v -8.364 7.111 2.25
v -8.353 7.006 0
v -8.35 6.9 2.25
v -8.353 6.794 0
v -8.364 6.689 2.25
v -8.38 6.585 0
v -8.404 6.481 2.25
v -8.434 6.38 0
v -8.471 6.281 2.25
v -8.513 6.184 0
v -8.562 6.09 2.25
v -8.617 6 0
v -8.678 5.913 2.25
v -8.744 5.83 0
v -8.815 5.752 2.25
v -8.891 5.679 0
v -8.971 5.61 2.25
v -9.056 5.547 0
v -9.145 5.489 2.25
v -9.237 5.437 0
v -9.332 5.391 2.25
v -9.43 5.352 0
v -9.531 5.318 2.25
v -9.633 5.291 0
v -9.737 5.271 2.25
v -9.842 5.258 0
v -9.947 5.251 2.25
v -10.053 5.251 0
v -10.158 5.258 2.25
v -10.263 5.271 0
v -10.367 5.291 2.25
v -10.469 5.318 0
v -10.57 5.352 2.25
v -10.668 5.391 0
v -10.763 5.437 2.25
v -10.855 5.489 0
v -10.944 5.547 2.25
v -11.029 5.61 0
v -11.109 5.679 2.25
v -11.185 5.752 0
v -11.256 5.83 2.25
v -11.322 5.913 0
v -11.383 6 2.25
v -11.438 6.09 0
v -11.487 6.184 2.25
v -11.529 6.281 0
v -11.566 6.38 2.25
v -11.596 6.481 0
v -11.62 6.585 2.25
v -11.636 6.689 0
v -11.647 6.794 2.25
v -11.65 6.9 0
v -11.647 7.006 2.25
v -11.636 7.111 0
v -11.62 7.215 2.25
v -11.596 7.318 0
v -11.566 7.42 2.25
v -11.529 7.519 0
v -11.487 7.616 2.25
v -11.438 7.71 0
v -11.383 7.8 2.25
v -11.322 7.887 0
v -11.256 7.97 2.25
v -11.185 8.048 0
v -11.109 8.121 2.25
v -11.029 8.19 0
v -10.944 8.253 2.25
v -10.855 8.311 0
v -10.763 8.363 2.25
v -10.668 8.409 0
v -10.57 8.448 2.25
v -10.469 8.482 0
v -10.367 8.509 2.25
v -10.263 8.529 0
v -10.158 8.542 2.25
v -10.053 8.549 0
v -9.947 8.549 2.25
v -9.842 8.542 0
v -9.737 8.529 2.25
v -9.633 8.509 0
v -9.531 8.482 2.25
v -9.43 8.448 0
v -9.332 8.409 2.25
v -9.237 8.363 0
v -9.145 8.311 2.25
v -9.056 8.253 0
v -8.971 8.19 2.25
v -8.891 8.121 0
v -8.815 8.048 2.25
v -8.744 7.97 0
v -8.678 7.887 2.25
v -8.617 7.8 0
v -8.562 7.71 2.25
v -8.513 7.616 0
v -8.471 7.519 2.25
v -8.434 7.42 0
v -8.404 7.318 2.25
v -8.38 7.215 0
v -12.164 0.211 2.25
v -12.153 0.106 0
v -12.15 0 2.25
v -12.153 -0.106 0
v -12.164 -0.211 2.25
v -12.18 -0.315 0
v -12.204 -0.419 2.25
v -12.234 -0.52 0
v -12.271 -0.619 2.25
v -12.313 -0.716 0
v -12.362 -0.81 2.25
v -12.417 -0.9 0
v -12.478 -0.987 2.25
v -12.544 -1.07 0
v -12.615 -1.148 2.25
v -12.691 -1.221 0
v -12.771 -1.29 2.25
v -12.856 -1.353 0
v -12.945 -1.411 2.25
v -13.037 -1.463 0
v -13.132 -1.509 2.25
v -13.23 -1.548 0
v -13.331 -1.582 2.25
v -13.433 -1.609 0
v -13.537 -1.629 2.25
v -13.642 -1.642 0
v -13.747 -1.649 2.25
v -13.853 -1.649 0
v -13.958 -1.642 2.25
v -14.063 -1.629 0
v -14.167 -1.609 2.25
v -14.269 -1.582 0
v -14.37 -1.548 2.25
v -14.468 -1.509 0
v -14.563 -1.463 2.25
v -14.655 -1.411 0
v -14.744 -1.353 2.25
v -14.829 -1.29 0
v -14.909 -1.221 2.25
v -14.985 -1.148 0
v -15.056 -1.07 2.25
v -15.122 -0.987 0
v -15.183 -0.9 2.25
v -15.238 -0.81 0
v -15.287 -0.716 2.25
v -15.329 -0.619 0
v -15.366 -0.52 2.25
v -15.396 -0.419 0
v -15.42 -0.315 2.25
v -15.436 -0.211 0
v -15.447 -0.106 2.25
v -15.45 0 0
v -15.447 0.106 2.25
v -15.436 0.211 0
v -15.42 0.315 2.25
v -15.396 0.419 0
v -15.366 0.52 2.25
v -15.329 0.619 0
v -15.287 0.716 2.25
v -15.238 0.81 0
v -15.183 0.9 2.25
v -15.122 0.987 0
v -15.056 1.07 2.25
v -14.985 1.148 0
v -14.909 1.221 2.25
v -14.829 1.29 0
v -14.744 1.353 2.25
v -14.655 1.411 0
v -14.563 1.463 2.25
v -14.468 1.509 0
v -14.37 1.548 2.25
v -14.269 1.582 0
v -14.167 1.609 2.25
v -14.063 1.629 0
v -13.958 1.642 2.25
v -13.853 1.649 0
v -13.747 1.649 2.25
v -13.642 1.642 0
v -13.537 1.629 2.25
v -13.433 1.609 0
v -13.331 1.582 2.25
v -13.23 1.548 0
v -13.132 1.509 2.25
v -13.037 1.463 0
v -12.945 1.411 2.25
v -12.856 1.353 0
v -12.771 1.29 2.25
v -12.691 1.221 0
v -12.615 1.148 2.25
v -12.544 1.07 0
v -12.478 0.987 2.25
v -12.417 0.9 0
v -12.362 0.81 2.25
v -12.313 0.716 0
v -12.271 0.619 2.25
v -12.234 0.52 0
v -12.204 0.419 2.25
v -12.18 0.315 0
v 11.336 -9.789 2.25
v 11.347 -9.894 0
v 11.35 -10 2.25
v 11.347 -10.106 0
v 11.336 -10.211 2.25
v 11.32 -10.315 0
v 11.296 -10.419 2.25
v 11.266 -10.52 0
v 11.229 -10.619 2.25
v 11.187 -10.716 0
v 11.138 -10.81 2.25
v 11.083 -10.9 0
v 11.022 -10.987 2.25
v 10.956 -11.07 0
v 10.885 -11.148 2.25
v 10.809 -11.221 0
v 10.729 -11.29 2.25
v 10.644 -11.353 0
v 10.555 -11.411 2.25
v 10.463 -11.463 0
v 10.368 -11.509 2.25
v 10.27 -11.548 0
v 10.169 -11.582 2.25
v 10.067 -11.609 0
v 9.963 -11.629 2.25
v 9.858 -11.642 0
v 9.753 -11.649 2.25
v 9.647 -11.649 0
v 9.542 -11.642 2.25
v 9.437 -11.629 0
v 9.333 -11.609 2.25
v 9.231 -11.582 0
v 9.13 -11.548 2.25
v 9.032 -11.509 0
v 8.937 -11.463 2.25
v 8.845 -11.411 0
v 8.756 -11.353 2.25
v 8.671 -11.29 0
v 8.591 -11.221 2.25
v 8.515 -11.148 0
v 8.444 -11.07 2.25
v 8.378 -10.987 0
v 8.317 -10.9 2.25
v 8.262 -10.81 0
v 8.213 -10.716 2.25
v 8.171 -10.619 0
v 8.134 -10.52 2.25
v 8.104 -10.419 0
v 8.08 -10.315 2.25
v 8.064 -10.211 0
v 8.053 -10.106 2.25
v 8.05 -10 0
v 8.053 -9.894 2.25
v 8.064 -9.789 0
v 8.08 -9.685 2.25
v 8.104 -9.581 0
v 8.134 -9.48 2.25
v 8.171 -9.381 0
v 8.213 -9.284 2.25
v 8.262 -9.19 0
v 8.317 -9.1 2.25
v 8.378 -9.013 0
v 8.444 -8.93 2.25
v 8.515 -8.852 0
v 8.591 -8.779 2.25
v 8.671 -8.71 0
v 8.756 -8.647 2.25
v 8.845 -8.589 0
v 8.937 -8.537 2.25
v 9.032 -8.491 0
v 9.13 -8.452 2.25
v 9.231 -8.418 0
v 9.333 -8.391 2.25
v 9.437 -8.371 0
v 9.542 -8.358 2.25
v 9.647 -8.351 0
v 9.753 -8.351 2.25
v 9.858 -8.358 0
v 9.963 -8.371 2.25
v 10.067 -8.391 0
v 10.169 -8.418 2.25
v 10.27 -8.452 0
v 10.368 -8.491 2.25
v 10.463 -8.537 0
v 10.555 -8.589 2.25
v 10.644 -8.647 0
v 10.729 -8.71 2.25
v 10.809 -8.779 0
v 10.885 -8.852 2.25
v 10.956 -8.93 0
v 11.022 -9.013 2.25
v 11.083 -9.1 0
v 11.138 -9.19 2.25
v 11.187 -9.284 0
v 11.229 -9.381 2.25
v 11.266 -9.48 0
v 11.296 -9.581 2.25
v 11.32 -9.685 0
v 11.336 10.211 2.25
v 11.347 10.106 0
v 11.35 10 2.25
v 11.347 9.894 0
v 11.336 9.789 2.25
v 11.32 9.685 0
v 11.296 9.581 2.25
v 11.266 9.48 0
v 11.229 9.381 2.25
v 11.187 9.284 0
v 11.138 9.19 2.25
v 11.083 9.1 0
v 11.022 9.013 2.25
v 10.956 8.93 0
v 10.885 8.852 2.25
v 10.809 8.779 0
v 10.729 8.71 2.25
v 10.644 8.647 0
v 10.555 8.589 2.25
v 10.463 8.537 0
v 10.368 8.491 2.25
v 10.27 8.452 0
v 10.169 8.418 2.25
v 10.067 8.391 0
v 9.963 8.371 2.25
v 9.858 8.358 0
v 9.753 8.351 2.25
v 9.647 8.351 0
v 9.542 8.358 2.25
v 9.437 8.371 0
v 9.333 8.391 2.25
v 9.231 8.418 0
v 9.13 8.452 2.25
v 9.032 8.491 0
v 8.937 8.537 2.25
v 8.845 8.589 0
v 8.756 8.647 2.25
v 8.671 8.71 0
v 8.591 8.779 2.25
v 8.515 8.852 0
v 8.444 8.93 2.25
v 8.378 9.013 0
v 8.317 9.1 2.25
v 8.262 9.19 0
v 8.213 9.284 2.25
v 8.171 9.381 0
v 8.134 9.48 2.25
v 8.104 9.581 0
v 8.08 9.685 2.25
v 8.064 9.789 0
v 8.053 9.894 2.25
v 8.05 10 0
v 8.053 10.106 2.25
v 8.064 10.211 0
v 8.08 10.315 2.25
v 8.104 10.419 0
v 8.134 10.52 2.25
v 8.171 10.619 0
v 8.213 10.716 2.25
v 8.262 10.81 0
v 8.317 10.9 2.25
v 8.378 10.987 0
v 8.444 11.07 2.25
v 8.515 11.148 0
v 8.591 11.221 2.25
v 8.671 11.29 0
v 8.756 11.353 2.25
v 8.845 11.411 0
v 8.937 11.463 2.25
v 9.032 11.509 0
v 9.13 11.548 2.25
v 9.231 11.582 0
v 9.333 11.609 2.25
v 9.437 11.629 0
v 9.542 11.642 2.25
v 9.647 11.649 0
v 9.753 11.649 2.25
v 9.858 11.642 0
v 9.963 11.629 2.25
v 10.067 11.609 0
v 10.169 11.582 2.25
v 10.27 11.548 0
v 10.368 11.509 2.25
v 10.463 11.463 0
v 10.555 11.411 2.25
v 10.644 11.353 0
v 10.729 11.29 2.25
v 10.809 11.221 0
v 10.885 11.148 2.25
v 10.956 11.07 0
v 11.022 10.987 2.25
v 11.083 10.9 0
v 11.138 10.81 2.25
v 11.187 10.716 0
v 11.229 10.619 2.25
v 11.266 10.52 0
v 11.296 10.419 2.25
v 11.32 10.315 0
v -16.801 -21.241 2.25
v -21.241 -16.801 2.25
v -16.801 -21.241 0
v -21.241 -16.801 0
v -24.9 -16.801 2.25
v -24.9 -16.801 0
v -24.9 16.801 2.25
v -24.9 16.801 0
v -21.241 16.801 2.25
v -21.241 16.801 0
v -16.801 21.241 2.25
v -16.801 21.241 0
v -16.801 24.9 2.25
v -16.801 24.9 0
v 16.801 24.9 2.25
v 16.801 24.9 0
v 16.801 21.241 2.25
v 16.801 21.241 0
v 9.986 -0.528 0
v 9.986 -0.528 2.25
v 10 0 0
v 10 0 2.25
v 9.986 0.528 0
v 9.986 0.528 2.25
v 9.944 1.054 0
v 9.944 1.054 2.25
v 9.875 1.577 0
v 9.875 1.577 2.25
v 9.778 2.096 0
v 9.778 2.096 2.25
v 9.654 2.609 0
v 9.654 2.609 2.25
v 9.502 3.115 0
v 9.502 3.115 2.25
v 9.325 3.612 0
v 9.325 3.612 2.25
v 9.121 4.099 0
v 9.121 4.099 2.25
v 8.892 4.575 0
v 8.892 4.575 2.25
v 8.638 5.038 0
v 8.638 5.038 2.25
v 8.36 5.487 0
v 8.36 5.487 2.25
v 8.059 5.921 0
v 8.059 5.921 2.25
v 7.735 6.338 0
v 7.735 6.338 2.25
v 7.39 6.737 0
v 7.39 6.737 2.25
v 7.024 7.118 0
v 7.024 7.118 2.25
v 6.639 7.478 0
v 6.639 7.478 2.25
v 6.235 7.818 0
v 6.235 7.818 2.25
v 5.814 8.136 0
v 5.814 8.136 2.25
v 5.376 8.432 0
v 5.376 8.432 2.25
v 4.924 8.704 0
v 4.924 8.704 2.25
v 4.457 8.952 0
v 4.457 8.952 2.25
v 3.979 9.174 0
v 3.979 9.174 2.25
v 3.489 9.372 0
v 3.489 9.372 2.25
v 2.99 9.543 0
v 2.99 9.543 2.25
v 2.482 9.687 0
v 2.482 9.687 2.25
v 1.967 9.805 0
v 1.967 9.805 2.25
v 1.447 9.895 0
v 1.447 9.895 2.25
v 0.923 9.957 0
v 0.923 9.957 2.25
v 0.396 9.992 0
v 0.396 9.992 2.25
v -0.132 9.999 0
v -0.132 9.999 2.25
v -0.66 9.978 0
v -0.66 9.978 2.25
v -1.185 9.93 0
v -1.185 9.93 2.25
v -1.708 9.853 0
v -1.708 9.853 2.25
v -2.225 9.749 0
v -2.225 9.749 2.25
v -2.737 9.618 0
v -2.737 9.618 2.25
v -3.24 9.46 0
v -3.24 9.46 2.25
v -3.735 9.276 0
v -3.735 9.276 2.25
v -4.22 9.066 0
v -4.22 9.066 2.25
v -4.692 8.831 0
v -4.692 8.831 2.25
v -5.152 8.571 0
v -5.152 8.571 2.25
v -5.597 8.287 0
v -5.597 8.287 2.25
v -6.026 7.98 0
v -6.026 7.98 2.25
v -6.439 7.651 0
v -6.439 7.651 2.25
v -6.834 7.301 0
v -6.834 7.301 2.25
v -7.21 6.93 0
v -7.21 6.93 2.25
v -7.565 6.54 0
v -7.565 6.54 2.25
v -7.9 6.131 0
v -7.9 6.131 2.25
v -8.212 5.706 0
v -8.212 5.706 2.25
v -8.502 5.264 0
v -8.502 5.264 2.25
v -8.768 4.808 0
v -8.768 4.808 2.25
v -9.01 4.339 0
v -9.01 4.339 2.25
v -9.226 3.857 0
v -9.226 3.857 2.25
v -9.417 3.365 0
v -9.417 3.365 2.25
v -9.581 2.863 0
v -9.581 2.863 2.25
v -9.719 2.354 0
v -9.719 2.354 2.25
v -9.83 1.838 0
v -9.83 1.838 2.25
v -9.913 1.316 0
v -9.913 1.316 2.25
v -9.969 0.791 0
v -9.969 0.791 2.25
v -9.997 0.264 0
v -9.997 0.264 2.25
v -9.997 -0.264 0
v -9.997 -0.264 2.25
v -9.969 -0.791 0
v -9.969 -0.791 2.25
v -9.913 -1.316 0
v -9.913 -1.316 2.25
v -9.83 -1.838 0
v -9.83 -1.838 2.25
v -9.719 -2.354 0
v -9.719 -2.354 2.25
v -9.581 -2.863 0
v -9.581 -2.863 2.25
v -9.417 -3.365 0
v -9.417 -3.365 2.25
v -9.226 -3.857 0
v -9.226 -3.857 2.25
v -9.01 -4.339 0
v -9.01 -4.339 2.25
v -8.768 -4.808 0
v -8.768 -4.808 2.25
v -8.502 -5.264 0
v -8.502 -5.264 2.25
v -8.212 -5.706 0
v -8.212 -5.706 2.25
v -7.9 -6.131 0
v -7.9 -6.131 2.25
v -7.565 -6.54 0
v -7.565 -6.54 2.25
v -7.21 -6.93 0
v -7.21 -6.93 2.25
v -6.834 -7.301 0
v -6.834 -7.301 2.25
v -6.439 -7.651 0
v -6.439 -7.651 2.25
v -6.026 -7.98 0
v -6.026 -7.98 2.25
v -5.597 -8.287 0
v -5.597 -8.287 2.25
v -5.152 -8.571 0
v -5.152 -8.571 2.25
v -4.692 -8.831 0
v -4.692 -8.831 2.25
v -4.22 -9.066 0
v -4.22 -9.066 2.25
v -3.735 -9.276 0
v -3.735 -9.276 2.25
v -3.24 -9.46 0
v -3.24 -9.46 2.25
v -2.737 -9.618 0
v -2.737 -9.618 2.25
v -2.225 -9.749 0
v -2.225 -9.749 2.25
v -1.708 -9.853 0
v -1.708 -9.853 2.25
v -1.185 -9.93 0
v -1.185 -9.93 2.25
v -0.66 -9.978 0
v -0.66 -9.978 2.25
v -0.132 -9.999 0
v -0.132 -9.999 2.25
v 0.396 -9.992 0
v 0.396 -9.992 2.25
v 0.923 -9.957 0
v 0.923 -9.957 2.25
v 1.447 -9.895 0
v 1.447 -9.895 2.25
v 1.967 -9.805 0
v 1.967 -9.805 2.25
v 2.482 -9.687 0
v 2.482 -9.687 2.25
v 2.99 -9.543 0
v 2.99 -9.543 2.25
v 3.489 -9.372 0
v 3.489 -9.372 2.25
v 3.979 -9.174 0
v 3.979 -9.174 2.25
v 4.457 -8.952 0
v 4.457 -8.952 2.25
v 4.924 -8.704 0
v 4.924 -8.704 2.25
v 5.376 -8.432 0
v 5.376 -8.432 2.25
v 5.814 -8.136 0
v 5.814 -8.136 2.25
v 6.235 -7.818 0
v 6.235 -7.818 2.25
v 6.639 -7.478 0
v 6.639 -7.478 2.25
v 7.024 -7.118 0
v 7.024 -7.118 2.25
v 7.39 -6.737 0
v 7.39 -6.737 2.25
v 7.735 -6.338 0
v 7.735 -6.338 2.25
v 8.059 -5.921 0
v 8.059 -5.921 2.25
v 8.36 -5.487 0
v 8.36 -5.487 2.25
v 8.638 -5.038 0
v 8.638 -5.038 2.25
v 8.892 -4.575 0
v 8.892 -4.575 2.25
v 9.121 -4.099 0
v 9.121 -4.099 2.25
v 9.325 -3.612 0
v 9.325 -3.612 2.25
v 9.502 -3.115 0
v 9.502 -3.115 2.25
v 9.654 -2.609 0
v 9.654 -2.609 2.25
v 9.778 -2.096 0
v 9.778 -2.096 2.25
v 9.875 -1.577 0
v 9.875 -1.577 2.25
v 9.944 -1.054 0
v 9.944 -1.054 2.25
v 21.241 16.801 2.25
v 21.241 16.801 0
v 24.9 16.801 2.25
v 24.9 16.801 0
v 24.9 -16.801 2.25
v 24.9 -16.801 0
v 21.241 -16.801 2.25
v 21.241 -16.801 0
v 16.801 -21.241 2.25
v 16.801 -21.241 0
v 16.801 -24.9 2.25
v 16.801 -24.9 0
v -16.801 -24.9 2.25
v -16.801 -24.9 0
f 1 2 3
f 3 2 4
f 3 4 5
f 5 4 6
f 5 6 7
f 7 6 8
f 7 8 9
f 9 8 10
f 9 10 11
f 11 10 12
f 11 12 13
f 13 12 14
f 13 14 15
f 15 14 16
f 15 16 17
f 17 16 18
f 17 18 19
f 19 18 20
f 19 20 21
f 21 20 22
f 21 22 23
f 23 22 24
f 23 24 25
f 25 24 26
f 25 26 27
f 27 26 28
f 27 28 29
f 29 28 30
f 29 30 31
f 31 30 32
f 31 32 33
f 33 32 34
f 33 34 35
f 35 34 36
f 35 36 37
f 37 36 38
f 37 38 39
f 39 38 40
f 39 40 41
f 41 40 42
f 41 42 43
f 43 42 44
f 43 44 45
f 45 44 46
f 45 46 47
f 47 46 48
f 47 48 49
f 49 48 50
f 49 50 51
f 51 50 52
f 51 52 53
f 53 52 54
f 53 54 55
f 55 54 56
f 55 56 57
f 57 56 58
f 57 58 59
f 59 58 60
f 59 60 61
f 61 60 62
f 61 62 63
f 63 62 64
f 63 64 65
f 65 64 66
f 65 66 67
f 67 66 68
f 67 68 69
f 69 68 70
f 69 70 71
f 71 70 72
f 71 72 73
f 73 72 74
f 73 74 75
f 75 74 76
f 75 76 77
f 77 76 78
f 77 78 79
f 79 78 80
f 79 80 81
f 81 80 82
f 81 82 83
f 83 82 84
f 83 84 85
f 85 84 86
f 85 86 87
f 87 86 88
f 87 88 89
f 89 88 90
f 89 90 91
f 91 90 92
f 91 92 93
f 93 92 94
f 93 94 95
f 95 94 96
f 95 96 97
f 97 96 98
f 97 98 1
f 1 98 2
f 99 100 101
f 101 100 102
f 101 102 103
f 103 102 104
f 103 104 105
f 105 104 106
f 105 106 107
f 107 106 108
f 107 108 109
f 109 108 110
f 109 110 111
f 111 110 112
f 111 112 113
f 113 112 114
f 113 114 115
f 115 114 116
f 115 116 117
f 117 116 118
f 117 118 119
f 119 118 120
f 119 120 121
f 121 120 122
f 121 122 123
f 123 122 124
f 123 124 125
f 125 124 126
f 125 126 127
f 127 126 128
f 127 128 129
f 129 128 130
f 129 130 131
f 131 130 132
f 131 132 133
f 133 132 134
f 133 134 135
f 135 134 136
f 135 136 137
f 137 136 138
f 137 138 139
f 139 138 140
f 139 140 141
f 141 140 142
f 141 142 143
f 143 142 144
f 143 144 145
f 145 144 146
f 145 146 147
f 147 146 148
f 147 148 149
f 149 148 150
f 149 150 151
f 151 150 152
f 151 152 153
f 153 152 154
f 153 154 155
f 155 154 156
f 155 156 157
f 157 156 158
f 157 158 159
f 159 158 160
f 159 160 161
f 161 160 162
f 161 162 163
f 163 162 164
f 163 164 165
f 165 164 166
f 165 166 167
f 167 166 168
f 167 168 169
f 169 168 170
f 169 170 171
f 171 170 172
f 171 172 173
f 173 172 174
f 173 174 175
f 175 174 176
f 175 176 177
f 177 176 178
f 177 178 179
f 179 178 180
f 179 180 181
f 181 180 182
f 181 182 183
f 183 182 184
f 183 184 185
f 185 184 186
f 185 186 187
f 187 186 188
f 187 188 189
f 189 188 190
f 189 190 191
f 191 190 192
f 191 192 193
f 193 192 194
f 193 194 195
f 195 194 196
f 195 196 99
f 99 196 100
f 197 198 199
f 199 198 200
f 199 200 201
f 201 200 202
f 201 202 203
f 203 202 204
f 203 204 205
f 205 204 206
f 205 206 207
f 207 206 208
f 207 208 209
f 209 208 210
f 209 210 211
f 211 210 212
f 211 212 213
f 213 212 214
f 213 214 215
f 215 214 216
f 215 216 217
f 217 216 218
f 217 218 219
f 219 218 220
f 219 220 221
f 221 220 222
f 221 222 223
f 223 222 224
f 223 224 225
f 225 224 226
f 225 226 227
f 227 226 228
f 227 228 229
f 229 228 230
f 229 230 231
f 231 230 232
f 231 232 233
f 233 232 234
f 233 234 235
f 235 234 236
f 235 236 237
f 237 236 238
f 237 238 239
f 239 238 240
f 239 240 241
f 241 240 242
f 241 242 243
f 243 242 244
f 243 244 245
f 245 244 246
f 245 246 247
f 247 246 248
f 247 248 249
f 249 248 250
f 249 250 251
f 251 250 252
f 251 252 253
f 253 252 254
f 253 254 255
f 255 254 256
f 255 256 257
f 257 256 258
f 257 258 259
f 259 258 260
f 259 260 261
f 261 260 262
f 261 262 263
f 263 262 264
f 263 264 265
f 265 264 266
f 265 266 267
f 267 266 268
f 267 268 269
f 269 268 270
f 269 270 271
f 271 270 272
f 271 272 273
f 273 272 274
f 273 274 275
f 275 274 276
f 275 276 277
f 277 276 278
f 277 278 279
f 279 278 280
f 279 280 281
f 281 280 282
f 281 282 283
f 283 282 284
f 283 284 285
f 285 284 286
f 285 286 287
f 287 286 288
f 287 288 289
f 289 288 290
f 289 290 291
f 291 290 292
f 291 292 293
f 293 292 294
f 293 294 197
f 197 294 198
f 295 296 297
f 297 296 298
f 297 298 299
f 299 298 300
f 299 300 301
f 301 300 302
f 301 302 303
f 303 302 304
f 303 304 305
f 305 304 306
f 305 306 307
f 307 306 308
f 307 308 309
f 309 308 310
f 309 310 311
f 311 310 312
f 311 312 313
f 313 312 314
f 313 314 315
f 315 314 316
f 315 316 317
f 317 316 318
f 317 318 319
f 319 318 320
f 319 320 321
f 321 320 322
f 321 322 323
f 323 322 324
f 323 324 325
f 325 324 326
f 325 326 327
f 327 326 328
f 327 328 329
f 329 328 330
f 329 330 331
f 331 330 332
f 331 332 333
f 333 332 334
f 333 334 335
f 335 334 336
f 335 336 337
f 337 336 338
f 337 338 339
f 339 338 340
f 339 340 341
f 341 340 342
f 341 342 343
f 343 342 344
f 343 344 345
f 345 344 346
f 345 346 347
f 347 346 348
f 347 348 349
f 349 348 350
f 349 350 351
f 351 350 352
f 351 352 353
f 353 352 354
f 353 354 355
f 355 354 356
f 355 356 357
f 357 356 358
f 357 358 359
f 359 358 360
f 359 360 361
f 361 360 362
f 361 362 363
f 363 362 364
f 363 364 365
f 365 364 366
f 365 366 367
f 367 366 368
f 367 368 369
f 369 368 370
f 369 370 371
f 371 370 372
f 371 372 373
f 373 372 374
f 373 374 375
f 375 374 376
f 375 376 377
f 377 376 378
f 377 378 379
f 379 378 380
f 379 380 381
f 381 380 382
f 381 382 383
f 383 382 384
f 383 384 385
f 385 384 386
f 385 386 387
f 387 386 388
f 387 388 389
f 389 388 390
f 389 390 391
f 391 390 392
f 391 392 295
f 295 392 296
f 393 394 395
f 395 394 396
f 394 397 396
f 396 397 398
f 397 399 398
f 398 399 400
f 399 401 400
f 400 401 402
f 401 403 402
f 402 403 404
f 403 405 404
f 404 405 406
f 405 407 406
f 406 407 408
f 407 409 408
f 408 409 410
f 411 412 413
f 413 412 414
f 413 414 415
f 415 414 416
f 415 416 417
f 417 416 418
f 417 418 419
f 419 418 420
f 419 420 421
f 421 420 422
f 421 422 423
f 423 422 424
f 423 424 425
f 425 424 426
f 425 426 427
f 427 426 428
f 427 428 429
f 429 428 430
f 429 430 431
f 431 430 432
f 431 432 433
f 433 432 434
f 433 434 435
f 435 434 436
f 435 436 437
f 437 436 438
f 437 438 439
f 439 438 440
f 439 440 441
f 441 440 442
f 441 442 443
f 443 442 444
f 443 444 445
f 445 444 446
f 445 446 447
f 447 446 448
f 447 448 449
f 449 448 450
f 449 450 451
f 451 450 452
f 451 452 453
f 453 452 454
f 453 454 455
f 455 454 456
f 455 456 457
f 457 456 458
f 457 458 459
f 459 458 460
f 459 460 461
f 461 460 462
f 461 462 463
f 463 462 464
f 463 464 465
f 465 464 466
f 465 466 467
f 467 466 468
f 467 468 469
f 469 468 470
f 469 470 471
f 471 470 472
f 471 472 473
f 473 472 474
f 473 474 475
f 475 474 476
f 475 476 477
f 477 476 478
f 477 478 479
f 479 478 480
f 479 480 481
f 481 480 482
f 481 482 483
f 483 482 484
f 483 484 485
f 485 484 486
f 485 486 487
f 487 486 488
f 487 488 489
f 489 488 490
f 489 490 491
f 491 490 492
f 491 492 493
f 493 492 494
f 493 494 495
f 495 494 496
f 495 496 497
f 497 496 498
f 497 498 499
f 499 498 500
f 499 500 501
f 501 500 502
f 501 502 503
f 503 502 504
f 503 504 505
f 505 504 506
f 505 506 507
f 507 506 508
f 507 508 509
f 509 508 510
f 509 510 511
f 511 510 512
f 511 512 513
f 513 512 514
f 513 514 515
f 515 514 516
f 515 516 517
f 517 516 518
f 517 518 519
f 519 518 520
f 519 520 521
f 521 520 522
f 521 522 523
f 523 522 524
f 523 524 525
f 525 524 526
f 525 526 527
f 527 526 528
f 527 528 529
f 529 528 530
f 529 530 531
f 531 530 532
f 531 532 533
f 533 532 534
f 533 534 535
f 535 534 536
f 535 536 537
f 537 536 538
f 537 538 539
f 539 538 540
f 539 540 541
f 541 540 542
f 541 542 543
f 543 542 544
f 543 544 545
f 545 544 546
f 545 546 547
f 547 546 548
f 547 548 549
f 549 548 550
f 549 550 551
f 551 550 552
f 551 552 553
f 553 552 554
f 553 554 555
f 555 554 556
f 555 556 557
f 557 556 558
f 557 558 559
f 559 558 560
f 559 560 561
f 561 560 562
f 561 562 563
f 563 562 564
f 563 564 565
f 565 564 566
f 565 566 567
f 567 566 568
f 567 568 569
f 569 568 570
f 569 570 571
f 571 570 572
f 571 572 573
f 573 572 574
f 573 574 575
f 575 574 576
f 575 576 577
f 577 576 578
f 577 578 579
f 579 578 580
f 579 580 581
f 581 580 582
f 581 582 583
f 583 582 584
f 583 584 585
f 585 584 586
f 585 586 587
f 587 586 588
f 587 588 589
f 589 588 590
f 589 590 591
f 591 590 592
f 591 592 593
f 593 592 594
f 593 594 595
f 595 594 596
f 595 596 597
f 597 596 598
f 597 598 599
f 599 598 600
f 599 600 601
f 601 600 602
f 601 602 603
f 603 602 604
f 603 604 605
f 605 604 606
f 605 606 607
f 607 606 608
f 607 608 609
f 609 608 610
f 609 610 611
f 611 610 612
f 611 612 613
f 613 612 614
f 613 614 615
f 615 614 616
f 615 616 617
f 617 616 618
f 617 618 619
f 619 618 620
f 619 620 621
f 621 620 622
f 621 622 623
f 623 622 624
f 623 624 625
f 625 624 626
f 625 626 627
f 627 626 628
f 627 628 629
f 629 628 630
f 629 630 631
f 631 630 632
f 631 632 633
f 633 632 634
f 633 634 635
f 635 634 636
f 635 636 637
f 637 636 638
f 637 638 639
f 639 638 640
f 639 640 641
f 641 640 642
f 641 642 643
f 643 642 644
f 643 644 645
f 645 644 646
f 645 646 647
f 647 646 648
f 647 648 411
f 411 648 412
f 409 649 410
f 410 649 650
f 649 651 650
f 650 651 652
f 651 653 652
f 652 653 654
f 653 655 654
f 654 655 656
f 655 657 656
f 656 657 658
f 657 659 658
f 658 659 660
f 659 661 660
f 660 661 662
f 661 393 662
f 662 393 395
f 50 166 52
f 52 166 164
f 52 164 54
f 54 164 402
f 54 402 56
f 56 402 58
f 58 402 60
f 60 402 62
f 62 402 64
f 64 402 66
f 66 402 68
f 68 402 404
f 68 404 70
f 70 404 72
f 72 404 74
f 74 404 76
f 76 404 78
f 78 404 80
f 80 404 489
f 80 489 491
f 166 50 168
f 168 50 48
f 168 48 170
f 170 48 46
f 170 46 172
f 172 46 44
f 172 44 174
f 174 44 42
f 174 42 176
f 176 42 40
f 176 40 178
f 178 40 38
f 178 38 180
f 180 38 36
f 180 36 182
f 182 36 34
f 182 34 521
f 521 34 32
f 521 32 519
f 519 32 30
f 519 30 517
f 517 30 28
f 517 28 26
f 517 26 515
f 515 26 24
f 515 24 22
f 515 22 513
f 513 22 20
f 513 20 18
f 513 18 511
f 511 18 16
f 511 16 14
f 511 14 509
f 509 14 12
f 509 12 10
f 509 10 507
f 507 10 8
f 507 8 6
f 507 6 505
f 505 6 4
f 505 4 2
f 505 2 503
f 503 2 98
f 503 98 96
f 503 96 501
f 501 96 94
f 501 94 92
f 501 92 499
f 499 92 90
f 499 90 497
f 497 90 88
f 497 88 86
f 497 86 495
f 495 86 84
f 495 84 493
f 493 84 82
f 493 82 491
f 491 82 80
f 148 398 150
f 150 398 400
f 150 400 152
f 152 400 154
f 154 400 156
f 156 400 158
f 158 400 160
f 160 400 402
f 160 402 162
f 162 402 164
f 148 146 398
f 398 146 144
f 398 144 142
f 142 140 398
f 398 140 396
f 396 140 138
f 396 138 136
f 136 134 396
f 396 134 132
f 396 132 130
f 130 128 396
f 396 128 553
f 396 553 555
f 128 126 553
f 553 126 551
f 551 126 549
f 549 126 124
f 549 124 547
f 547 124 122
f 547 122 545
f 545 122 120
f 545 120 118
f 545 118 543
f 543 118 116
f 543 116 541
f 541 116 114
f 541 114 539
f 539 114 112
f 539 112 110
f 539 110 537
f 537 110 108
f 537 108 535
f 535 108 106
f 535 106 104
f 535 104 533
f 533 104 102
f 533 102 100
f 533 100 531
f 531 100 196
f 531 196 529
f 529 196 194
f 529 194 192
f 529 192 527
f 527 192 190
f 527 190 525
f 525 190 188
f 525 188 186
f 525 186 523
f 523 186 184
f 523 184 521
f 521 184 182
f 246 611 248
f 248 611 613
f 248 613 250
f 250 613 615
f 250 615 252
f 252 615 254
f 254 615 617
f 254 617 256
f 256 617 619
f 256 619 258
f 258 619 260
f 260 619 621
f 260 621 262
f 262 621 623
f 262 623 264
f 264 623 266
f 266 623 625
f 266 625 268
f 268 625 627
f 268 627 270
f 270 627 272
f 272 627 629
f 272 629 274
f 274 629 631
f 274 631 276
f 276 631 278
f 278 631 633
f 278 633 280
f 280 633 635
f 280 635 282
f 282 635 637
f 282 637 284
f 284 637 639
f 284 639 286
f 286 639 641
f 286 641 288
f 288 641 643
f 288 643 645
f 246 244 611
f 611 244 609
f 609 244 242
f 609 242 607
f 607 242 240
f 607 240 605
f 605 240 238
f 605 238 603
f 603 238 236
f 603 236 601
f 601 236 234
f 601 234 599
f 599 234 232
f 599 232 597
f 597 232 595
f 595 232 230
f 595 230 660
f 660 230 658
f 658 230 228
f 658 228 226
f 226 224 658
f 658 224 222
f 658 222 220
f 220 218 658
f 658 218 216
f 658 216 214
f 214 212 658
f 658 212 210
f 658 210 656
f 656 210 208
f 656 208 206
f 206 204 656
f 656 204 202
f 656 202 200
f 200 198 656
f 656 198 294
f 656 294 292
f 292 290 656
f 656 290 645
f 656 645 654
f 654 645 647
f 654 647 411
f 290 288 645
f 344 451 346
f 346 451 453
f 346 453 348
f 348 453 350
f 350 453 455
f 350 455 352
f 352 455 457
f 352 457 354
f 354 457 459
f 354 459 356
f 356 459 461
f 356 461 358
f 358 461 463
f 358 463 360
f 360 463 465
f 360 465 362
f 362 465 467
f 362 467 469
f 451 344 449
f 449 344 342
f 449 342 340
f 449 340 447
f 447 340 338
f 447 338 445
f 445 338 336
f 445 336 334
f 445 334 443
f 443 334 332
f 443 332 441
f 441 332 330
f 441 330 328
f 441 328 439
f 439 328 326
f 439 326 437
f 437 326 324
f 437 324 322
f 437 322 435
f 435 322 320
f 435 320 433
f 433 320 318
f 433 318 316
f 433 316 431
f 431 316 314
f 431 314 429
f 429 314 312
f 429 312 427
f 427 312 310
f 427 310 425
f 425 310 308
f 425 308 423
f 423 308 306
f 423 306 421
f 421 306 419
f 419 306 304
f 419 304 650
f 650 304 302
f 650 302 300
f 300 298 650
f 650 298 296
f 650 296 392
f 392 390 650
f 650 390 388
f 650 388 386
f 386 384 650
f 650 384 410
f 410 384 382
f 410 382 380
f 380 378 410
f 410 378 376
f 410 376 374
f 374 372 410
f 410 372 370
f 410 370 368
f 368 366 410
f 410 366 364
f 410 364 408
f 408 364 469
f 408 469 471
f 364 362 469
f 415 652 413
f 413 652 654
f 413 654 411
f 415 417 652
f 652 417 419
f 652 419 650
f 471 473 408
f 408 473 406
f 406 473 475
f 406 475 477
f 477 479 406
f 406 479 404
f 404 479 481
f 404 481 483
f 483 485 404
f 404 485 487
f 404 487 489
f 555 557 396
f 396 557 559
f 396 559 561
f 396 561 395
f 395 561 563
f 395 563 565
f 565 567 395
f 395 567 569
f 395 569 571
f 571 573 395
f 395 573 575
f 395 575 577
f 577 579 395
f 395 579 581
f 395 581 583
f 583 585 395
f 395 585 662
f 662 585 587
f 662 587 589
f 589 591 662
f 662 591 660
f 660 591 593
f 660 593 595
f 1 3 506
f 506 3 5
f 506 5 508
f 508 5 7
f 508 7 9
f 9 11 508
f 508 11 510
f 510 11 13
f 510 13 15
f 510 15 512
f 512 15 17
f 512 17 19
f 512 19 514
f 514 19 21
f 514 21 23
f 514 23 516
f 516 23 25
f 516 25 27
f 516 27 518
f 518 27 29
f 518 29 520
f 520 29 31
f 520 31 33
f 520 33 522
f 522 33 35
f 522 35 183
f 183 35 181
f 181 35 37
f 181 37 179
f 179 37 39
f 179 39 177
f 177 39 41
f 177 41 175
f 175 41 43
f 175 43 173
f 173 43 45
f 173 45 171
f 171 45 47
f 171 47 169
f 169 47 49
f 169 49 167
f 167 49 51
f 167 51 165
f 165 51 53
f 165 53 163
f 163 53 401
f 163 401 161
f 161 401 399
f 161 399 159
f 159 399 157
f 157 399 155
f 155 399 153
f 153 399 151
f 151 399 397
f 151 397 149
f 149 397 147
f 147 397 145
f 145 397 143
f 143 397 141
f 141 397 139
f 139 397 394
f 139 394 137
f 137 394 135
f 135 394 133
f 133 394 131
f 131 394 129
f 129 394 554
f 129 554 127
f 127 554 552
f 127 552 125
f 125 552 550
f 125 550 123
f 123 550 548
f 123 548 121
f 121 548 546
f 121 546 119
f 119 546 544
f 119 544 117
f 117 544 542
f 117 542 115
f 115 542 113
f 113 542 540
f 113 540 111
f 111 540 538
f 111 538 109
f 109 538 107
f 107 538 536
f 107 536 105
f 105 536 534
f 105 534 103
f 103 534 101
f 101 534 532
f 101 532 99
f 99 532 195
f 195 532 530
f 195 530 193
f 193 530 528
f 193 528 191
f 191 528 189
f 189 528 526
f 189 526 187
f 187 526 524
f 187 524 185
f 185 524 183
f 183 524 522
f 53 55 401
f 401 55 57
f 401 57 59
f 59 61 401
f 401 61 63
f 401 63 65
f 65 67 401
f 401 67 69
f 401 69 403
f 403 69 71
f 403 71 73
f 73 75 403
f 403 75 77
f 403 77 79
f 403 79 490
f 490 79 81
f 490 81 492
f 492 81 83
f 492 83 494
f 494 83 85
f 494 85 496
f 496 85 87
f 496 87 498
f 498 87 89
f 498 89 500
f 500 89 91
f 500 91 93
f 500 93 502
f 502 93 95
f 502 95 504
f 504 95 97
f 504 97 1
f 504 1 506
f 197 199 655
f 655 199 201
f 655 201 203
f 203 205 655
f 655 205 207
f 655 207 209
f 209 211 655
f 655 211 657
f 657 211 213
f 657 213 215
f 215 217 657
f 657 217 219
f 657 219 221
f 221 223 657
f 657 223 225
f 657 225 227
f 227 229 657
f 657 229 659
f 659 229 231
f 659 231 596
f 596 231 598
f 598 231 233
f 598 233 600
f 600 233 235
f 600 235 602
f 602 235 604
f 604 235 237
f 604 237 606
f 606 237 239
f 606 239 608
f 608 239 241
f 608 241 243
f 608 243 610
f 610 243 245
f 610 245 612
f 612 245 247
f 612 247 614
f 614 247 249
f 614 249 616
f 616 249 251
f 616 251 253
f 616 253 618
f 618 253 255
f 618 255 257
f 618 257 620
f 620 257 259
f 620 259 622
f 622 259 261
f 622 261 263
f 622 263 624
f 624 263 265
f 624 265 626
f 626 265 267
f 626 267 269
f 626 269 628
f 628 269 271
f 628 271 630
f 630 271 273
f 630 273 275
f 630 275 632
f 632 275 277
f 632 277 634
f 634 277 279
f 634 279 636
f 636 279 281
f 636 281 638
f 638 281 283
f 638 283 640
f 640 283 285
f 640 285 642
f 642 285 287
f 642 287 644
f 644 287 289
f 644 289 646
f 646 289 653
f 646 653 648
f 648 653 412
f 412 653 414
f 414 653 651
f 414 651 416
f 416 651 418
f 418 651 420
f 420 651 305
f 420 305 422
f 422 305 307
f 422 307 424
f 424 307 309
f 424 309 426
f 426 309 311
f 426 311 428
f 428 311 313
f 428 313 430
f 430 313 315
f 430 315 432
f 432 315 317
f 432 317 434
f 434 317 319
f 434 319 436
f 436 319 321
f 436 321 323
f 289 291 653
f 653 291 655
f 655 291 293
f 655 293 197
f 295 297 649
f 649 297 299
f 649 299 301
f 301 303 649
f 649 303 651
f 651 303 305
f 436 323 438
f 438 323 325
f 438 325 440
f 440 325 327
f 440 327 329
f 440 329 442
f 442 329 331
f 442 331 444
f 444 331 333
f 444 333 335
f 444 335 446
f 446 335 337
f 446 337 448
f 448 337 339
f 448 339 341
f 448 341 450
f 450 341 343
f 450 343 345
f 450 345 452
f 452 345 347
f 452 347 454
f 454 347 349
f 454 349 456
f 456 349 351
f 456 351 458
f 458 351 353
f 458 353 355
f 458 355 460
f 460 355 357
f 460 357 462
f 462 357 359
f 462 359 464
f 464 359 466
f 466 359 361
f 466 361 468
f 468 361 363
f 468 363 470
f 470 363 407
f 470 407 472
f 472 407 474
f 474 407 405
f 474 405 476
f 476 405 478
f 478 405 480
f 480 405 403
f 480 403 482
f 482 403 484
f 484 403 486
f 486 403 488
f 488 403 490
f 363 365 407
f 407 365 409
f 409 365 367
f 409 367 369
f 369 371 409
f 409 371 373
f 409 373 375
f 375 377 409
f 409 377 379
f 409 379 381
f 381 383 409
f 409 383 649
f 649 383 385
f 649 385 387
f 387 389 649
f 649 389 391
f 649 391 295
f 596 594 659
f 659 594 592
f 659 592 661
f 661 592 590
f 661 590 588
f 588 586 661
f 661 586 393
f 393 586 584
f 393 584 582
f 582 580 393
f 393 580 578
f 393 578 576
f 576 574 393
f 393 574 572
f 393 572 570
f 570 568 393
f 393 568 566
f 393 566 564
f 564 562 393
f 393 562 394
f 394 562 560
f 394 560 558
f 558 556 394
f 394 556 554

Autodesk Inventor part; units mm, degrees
ref_plane "YZ Plane" through (0, 0, 0) normal (1, 0, 0) x (0, 1, 0)
ref_plane "Work Plane1" through (-29.1, -14.5, 2.4) normal (0, 0, -1) x (0, 1, 0)
ref_plane "Work Plane2" through (-13.8999, -10.5497, 2.25) normal (0, 0, -1) x (0, 1, 0)
sketch "Sketch1" plane through (0, 0, 0) normal (0, 0, 1) x (1, 0, 0)
  line L0 (-34.86, 0) -> (34.86, 0) construction
  line L1 (0, -34.86) -> (0, 34.86) construction
  line L2 (0, 0) -> (11.1575, 11.1575) construction
  line L3 (0, 0) -> (15.7791, 0) construction
  line L4 (0, 24.9) -> (16.8009, 24.9)
  line L5 (16.8009, 24.9) -> (16.8009, 21.2415)
  line L6 (16.8009, 21.2415) -> (19.0212, 19.0212)
  line L7 (24.9, 0) -> (24.9, 16.8009)
  line L8 (24.9, 16.8009) -> (21.2415, 16.8009)
  line L9 (21.2415, 16.8009) -> (19.0212, 19.0212)
  line L10 (0, -24.9) -> (16.8009, -24.9)
  line L11 (16.8009, -24.9) -> (16.8009, -21.2415)
  line L12 (16.8009, -21.2415) -> (19.0212, -19.0212)
  line L13 (24.9, 0) -> (24.9, -16.8009)
  line L14 (24.9, -16.8009) -> (21.2415, -16.8009)
  line L15 (21.2415, -16.8009) -> (19.0212, -19.0212)
  line L16 (0, 24.9) -> (-16.8009, 24.9)
  line L17 (-16.8009, 24.9) -> (-16.8009, 21.2415)
  line L18 (-16.8009, 21.2415) -> (-19.0212, 19.0212)
  line L19 (-24.9, 16.8009) -> (-21.2415, 16.8009)
  line L20 (-21.2415, 16.8009) -> (-19.0212, 19.0212)
  line L21 (0, -24.9) -> (-16.8009, -24.9)
  line L22 (-16.8009, -24.9) -> (-16.8009, -21.2415)
  line L23 (-16.8009, -21.2415) -> (-19.0212, -19.0212)
  line L24 (-21.2415, -16.8009) -> (-19.0212, -19.0212)
  line L25 (-24.9, -16.8009) -> (-21.2415, -16.8009)
  line L26 (-24.9, 0) -> (-24.9, -16.8009)
  line L27 (-24.9, 0) -> (-24.9, 16.8009)
  circle A0 centre (0, 0) radius 10
  dimension "d0" = 45
  dimension "d2" = 24.9
  dimension "d3" = 3.14
  dimension "d4" = 26.9
  dimension "d5" = 20
extrude "Extrusion1" add sketch "Sketch1" along normal up to surface (2.25 mm away)
sketch "Sketch5" plane through (0, 0, 0) normal (0, 0, -1) x (-1, 0, 0)
  circle A0 centre (-9.7, 10) radius 1.4
  circle A1 centre (-9.7, -10) radius 1.4
  circle A2 centre (13.8, 0) radius 1.4
  circle A3 centre (-10, 6.9) radius 0.75
  circle A4 centre (10, 6.9) radius 1.25
  point P0 (0, 0)
hole "Hole1" at (-13.8, 0, 0) at (9.7, -10, 0) at (-10, 6.9, 0) at (9.7, 10, 0) direction (0, 0, 1) diameter 3.3 depth 12 tip angle 118
properties part number "20_Cube_insert_Sample_holder"
